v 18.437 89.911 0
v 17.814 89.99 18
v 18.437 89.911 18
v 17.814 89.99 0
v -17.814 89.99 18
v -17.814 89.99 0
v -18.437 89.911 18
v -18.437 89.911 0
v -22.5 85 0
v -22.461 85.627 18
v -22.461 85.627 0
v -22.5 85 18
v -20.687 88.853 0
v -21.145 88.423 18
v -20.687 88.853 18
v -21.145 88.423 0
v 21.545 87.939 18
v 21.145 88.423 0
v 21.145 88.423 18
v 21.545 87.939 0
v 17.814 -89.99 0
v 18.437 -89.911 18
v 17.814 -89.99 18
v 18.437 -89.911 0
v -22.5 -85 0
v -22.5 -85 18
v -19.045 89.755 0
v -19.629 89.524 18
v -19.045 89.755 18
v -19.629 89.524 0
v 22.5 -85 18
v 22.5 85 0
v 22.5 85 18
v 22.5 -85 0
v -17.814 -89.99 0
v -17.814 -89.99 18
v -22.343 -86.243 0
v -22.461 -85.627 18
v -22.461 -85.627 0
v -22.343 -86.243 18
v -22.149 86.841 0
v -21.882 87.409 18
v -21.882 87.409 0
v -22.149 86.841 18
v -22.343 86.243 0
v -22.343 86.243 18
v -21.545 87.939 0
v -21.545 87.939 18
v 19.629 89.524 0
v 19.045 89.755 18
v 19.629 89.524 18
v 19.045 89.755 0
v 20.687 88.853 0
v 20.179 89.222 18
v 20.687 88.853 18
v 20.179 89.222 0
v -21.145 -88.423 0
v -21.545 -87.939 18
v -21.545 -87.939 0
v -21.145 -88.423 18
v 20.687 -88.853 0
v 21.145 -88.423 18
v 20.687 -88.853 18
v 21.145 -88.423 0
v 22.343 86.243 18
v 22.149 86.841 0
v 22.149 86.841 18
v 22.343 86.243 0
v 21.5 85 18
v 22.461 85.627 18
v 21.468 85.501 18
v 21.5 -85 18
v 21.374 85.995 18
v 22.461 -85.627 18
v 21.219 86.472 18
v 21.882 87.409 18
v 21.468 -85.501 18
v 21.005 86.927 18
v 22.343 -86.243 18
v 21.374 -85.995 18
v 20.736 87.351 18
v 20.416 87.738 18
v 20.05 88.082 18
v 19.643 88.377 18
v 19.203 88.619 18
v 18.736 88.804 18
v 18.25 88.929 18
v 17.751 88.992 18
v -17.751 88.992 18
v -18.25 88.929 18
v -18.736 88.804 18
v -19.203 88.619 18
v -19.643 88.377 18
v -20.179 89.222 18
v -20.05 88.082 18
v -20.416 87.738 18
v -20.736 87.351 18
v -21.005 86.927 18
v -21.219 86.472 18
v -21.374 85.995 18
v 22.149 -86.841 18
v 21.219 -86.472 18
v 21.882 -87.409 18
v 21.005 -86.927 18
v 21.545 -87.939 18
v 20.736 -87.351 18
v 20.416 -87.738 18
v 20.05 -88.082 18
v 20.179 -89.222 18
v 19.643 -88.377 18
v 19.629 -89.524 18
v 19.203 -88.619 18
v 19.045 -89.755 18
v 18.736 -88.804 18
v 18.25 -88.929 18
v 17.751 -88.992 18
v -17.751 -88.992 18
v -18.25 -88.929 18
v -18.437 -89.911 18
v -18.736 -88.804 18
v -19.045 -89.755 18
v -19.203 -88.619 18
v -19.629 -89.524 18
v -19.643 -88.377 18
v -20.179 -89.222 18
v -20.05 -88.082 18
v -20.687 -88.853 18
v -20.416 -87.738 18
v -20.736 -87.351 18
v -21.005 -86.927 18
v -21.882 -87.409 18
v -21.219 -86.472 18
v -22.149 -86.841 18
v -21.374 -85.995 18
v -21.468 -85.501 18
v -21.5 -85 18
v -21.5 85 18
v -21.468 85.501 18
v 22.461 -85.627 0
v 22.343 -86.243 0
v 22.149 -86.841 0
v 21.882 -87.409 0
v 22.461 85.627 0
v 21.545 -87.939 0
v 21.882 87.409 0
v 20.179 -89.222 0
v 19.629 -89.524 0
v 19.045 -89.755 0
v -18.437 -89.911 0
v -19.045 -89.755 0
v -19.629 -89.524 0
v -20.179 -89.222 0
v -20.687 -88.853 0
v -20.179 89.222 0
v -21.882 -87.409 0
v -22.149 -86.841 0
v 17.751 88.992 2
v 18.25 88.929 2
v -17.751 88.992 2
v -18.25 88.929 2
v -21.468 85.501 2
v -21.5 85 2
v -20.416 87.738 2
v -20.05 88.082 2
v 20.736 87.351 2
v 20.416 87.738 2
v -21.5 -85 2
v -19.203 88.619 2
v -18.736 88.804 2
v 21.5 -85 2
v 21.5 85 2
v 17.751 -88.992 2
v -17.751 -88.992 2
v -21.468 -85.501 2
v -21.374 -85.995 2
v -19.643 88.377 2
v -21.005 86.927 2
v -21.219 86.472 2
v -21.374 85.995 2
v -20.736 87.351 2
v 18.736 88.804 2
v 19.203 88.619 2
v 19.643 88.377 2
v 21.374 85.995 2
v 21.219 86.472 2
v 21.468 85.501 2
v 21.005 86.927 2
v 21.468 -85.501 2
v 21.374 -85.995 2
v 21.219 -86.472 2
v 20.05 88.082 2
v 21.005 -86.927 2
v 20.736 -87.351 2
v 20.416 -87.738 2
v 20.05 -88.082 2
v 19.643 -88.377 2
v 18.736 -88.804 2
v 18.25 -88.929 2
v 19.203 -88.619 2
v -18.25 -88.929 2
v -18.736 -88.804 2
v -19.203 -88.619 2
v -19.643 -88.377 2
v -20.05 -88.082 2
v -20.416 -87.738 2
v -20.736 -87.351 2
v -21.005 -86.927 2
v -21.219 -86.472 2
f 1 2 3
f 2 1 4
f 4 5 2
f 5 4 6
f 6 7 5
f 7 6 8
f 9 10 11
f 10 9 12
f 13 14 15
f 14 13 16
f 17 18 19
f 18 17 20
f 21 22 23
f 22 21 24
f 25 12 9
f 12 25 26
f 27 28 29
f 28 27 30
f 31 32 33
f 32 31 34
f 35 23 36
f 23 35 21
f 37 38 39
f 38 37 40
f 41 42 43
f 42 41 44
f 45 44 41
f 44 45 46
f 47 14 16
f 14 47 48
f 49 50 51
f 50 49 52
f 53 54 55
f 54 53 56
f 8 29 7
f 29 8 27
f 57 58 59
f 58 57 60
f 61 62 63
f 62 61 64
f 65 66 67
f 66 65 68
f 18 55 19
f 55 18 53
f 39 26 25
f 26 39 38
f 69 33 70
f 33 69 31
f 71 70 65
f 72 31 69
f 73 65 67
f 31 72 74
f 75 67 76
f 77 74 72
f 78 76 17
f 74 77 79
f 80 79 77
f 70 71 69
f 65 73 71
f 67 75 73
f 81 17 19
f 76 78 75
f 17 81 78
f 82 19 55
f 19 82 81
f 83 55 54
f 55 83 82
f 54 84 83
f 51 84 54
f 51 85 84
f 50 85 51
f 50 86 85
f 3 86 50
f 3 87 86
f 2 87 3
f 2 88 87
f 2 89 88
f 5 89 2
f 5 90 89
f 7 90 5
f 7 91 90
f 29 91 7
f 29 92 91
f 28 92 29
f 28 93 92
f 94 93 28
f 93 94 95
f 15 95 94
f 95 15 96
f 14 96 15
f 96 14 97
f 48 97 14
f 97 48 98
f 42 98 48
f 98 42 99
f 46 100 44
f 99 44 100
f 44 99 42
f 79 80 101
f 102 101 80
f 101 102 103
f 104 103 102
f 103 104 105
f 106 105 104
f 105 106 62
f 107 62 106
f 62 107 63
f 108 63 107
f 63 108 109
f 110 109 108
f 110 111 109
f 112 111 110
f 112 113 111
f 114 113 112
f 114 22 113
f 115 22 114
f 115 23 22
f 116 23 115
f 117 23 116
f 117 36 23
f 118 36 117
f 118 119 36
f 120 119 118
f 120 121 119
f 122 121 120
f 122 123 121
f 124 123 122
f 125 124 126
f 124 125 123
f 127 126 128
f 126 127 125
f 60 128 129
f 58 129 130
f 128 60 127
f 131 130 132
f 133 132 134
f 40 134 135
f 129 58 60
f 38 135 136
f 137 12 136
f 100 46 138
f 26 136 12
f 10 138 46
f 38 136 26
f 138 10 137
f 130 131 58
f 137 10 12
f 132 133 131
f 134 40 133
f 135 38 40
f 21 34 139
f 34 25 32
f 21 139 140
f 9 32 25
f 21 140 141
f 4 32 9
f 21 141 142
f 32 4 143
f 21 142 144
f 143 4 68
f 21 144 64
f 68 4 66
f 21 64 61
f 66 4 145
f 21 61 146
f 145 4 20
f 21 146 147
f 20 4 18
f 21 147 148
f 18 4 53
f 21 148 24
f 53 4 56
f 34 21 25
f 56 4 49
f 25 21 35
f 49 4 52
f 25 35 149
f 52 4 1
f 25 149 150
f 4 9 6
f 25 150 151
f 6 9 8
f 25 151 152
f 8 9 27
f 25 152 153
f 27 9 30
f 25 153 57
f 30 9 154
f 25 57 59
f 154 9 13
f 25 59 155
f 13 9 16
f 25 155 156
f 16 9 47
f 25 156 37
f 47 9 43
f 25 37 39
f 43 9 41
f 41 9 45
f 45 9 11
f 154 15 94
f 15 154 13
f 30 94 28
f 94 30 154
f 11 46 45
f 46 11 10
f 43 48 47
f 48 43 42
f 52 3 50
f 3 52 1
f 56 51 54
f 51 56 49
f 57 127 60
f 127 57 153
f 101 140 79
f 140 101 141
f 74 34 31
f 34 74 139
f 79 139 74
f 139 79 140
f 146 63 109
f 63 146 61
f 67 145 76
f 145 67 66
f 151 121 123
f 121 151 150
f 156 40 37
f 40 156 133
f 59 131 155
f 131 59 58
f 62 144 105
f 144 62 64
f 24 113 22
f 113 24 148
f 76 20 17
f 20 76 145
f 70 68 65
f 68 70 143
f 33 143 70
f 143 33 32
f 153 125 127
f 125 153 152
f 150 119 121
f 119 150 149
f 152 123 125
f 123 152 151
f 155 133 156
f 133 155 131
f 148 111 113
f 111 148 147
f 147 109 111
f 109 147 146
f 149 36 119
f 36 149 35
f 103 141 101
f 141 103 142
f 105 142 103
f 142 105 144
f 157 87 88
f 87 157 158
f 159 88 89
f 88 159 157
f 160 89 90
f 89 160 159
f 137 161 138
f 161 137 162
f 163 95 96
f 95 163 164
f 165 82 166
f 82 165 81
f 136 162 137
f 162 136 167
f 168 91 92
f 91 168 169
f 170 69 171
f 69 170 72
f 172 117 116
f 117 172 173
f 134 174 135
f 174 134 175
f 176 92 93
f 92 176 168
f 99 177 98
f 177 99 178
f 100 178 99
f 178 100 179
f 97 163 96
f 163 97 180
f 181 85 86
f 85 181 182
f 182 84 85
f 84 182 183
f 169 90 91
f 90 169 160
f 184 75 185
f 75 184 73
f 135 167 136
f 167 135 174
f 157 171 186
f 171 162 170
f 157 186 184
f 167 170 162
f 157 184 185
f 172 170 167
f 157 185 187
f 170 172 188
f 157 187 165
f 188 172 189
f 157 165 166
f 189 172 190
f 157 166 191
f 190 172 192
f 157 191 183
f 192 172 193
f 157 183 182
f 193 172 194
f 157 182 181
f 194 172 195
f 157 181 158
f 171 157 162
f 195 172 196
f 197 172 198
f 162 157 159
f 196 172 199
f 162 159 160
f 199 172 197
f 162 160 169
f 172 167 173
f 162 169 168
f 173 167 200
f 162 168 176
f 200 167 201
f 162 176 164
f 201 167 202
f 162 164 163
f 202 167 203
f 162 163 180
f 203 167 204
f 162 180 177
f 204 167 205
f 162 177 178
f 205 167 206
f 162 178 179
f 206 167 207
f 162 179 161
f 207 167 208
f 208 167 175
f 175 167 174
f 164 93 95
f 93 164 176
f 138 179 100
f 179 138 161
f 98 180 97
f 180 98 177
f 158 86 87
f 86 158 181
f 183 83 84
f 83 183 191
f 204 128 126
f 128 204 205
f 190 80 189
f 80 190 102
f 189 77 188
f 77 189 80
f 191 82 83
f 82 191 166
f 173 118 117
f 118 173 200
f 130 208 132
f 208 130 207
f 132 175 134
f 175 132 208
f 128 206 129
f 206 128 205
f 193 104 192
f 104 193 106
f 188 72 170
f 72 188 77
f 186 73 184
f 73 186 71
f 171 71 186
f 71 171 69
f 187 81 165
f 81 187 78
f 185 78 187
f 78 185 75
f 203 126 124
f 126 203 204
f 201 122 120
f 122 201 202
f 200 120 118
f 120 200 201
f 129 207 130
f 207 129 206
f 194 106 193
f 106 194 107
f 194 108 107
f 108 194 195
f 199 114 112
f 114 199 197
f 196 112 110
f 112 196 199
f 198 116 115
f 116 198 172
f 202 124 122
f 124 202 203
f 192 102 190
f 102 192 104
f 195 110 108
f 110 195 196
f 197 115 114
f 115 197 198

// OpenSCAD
$fn = 50;


difference() {
	union() {
		hull() {
			translate(v = [-17.5000000000, 85.0000000000, 0]) {
				cylinder(h = 18, r = 5);
			}
			translate(v = [17.5000000000, 85.0000000000, 0]) {
				cylinder(h = 18, r = 5);
			}
			translate(v = [-17.5000000000, -85.0000000000, 0]) {
				cylinder(h = 18, r = 5);
			}
			translate(v = [17.5000000000, -85.0000000000, 0]) {
				cylinder(h = 18, r = 5);
			}
		}
	}
	union() {
		translate(v = [0, 0, 2]) {
			hull() {
				translate(v = [-17.5000000000, 85.0000000000, 0]) {
					cylinder(h = 16, r = 4);
				}
				translate(v = [17.5000000000, 85.0000000000, 0]) {
					cylinder(h = 16, r = 4);
				}
				translate(v = [-17.5000000000, -85.0000000000, 0]) {
					cylinder(h = 16, r = 4);
				}
				translate(v = [17.5000000000, -85.0000000000, 0]) {
					cylinder(h = 16, r = 4);
				}
			}
		}
	}
}
